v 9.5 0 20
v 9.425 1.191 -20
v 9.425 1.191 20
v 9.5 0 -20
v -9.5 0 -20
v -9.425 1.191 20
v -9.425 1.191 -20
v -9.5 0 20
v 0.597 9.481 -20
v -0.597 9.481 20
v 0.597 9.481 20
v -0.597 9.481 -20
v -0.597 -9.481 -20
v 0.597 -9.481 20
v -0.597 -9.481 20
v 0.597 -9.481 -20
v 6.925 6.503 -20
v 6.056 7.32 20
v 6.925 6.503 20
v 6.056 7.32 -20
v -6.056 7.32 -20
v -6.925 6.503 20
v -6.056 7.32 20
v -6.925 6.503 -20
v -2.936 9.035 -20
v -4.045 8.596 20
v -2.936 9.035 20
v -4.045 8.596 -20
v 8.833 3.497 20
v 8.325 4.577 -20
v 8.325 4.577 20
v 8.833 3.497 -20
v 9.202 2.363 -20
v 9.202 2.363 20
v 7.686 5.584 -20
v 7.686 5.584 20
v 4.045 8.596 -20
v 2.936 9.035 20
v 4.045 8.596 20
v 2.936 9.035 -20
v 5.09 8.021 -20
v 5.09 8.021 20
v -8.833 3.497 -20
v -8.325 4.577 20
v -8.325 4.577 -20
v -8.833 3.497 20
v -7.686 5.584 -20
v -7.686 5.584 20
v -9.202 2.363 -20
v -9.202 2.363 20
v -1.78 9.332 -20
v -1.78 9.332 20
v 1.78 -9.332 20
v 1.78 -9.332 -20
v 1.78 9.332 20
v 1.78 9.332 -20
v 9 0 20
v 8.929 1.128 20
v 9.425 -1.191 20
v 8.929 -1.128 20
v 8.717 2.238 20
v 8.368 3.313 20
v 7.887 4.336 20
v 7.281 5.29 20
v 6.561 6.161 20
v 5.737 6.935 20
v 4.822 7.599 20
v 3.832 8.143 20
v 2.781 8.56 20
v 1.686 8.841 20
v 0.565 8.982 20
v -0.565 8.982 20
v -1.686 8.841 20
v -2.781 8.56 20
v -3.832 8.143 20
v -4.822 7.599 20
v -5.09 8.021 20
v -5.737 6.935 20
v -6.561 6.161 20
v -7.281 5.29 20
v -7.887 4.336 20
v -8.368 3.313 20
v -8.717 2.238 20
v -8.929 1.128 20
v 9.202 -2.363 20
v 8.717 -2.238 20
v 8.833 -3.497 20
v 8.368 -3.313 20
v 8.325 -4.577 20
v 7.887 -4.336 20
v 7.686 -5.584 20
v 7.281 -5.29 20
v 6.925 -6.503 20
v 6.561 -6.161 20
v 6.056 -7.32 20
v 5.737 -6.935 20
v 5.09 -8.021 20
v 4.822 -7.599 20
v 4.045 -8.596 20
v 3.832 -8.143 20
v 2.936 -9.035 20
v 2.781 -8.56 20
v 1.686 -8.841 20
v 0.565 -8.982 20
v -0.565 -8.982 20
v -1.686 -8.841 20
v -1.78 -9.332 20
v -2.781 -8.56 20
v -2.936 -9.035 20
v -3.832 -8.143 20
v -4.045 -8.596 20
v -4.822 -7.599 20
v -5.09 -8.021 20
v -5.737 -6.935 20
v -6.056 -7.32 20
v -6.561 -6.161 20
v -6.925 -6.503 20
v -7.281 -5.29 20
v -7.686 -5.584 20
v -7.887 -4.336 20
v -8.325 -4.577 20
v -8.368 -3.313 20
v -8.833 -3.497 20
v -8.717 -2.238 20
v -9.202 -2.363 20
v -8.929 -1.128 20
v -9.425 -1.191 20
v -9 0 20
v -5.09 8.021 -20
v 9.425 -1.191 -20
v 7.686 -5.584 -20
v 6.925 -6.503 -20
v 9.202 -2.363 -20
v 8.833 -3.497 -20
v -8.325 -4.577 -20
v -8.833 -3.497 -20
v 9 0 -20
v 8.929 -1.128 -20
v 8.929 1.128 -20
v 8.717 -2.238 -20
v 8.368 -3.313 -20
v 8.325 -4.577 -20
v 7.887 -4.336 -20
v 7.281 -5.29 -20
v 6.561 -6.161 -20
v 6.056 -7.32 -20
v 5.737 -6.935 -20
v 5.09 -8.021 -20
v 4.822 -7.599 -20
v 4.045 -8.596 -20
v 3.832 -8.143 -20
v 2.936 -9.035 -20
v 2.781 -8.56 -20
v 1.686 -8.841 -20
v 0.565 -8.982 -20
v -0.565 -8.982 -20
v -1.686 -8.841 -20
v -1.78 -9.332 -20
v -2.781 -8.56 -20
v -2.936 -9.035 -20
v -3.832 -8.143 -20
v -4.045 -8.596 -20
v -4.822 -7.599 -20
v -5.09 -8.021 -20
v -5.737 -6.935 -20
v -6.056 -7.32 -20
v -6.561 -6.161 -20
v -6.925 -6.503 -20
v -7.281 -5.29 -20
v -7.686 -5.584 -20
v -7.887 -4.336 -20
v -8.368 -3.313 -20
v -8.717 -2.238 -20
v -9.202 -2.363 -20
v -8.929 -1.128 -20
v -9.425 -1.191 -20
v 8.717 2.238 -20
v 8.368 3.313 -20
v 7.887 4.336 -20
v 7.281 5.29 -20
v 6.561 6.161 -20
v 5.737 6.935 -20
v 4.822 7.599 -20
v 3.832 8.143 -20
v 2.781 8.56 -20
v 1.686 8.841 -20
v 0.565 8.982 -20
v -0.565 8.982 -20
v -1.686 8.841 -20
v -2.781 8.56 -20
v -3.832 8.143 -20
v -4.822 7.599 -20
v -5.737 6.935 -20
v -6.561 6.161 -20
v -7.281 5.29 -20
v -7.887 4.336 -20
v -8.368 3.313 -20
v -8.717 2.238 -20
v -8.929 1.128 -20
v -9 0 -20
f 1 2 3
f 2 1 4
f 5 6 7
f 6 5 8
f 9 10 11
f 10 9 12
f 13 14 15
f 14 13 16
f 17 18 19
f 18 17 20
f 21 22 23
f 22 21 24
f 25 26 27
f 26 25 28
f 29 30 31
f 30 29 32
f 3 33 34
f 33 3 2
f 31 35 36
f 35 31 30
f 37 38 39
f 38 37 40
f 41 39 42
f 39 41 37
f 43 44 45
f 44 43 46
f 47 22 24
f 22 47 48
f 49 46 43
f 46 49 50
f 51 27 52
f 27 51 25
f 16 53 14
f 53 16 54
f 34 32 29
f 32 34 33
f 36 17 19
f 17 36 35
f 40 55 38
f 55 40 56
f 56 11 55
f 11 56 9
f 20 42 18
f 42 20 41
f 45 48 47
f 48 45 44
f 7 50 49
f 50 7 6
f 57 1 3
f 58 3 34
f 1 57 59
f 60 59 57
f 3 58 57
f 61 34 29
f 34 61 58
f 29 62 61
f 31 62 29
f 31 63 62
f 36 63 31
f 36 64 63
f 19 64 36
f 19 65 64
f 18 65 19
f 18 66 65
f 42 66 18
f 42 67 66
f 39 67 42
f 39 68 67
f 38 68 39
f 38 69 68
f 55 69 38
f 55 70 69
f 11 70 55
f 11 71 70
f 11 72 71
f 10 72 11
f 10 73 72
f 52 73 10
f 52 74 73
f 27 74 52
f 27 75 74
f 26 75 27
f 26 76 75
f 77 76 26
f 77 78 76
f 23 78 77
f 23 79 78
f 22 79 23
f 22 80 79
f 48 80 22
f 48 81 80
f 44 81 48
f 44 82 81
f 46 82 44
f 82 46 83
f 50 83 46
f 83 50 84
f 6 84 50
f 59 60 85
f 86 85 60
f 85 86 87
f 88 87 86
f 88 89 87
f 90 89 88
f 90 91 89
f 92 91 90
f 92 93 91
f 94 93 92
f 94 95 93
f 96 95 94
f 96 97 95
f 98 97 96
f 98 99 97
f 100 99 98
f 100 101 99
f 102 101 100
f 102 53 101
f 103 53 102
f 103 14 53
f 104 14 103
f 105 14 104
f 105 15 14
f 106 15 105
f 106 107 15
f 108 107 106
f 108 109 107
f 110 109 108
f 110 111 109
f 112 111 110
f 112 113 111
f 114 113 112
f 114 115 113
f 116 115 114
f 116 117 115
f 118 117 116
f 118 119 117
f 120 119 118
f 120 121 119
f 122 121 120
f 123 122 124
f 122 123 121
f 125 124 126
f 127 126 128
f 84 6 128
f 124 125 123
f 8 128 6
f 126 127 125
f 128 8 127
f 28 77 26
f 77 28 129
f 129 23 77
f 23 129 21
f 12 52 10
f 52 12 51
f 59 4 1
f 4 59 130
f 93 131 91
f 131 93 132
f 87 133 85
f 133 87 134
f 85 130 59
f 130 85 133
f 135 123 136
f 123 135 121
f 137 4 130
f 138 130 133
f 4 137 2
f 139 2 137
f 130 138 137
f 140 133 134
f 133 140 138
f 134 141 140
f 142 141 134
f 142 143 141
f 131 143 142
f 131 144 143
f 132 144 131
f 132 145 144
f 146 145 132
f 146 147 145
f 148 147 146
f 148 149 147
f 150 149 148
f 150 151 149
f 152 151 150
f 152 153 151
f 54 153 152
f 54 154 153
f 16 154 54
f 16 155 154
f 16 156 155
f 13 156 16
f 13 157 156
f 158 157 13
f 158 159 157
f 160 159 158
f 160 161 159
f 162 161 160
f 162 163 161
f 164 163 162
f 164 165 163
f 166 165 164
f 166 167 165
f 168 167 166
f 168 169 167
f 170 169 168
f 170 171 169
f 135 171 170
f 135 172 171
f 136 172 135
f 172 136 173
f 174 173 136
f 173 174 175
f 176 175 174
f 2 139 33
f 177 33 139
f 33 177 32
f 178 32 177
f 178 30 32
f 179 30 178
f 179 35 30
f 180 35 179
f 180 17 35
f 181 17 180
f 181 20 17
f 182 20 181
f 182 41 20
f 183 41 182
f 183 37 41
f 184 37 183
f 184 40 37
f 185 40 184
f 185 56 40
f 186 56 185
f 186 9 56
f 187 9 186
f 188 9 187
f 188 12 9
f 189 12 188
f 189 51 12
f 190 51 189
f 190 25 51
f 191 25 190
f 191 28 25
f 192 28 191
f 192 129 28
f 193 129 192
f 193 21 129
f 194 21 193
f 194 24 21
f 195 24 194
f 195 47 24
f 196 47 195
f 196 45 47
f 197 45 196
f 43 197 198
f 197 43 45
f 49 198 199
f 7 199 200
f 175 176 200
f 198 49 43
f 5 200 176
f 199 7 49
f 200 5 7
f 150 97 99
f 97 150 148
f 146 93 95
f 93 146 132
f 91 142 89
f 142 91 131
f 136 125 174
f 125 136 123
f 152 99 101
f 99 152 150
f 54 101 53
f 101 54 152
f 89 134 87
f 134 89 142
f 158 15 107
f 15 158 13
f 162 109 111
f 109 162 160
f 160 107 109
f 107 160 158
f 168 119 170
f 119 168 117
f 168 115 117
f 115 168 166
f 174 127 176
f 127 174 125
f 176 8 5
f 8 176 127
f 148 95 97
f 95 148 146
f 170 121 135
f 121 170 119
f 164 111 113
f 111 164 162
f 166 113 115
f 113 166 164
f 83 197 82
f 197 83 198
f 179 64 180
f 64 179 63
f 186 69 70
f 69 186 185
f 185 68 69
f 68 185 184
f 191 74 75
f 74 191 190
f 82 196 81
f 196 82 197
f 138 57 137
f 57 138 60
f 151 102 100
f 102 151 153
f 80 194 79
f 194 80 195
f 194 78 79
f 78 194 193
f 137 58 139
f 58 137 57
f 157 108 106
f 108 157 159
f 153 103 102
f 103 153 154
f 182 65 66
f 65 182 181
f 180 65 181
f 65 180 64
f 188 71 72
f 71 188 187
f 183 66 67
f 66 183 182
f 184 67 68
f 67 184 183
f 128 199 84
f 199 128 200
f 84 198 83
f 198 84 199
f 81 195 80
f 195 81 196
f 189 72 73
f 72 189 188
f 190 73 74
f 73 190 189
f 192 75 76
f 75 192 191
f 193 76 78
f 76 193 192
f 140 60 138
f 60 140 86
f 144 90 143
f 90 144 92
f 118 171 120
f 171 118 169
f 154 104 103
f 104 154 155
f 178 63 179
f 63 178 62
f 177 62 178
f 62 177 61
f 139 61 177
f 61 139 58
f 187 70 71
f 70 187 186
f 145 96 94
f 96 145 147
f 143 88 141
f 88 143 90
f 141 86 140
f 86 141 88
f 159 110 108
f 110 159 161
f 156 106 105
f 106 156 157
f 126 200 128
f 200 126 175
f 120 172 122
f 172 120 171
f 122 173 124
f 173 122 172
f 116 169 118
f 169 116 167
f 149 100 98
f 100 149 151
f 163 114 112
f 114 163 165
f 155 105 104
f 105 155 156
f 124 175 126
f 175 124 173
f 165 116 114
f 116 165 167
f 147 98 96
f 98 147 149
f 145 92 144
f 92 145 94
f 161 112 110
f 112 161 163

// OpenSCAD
$fn = 50;


difference() {
	union() {
		translate(v = [0, 0, -20.0000000000]) {
			cylinder(h = 40, r = 9.5000000000);
		}
	}
	union() {
		translate(v = [0, 0, -100.0000000000]) {
			cylinder(h = 200, r = 9);
		}
	}
}
